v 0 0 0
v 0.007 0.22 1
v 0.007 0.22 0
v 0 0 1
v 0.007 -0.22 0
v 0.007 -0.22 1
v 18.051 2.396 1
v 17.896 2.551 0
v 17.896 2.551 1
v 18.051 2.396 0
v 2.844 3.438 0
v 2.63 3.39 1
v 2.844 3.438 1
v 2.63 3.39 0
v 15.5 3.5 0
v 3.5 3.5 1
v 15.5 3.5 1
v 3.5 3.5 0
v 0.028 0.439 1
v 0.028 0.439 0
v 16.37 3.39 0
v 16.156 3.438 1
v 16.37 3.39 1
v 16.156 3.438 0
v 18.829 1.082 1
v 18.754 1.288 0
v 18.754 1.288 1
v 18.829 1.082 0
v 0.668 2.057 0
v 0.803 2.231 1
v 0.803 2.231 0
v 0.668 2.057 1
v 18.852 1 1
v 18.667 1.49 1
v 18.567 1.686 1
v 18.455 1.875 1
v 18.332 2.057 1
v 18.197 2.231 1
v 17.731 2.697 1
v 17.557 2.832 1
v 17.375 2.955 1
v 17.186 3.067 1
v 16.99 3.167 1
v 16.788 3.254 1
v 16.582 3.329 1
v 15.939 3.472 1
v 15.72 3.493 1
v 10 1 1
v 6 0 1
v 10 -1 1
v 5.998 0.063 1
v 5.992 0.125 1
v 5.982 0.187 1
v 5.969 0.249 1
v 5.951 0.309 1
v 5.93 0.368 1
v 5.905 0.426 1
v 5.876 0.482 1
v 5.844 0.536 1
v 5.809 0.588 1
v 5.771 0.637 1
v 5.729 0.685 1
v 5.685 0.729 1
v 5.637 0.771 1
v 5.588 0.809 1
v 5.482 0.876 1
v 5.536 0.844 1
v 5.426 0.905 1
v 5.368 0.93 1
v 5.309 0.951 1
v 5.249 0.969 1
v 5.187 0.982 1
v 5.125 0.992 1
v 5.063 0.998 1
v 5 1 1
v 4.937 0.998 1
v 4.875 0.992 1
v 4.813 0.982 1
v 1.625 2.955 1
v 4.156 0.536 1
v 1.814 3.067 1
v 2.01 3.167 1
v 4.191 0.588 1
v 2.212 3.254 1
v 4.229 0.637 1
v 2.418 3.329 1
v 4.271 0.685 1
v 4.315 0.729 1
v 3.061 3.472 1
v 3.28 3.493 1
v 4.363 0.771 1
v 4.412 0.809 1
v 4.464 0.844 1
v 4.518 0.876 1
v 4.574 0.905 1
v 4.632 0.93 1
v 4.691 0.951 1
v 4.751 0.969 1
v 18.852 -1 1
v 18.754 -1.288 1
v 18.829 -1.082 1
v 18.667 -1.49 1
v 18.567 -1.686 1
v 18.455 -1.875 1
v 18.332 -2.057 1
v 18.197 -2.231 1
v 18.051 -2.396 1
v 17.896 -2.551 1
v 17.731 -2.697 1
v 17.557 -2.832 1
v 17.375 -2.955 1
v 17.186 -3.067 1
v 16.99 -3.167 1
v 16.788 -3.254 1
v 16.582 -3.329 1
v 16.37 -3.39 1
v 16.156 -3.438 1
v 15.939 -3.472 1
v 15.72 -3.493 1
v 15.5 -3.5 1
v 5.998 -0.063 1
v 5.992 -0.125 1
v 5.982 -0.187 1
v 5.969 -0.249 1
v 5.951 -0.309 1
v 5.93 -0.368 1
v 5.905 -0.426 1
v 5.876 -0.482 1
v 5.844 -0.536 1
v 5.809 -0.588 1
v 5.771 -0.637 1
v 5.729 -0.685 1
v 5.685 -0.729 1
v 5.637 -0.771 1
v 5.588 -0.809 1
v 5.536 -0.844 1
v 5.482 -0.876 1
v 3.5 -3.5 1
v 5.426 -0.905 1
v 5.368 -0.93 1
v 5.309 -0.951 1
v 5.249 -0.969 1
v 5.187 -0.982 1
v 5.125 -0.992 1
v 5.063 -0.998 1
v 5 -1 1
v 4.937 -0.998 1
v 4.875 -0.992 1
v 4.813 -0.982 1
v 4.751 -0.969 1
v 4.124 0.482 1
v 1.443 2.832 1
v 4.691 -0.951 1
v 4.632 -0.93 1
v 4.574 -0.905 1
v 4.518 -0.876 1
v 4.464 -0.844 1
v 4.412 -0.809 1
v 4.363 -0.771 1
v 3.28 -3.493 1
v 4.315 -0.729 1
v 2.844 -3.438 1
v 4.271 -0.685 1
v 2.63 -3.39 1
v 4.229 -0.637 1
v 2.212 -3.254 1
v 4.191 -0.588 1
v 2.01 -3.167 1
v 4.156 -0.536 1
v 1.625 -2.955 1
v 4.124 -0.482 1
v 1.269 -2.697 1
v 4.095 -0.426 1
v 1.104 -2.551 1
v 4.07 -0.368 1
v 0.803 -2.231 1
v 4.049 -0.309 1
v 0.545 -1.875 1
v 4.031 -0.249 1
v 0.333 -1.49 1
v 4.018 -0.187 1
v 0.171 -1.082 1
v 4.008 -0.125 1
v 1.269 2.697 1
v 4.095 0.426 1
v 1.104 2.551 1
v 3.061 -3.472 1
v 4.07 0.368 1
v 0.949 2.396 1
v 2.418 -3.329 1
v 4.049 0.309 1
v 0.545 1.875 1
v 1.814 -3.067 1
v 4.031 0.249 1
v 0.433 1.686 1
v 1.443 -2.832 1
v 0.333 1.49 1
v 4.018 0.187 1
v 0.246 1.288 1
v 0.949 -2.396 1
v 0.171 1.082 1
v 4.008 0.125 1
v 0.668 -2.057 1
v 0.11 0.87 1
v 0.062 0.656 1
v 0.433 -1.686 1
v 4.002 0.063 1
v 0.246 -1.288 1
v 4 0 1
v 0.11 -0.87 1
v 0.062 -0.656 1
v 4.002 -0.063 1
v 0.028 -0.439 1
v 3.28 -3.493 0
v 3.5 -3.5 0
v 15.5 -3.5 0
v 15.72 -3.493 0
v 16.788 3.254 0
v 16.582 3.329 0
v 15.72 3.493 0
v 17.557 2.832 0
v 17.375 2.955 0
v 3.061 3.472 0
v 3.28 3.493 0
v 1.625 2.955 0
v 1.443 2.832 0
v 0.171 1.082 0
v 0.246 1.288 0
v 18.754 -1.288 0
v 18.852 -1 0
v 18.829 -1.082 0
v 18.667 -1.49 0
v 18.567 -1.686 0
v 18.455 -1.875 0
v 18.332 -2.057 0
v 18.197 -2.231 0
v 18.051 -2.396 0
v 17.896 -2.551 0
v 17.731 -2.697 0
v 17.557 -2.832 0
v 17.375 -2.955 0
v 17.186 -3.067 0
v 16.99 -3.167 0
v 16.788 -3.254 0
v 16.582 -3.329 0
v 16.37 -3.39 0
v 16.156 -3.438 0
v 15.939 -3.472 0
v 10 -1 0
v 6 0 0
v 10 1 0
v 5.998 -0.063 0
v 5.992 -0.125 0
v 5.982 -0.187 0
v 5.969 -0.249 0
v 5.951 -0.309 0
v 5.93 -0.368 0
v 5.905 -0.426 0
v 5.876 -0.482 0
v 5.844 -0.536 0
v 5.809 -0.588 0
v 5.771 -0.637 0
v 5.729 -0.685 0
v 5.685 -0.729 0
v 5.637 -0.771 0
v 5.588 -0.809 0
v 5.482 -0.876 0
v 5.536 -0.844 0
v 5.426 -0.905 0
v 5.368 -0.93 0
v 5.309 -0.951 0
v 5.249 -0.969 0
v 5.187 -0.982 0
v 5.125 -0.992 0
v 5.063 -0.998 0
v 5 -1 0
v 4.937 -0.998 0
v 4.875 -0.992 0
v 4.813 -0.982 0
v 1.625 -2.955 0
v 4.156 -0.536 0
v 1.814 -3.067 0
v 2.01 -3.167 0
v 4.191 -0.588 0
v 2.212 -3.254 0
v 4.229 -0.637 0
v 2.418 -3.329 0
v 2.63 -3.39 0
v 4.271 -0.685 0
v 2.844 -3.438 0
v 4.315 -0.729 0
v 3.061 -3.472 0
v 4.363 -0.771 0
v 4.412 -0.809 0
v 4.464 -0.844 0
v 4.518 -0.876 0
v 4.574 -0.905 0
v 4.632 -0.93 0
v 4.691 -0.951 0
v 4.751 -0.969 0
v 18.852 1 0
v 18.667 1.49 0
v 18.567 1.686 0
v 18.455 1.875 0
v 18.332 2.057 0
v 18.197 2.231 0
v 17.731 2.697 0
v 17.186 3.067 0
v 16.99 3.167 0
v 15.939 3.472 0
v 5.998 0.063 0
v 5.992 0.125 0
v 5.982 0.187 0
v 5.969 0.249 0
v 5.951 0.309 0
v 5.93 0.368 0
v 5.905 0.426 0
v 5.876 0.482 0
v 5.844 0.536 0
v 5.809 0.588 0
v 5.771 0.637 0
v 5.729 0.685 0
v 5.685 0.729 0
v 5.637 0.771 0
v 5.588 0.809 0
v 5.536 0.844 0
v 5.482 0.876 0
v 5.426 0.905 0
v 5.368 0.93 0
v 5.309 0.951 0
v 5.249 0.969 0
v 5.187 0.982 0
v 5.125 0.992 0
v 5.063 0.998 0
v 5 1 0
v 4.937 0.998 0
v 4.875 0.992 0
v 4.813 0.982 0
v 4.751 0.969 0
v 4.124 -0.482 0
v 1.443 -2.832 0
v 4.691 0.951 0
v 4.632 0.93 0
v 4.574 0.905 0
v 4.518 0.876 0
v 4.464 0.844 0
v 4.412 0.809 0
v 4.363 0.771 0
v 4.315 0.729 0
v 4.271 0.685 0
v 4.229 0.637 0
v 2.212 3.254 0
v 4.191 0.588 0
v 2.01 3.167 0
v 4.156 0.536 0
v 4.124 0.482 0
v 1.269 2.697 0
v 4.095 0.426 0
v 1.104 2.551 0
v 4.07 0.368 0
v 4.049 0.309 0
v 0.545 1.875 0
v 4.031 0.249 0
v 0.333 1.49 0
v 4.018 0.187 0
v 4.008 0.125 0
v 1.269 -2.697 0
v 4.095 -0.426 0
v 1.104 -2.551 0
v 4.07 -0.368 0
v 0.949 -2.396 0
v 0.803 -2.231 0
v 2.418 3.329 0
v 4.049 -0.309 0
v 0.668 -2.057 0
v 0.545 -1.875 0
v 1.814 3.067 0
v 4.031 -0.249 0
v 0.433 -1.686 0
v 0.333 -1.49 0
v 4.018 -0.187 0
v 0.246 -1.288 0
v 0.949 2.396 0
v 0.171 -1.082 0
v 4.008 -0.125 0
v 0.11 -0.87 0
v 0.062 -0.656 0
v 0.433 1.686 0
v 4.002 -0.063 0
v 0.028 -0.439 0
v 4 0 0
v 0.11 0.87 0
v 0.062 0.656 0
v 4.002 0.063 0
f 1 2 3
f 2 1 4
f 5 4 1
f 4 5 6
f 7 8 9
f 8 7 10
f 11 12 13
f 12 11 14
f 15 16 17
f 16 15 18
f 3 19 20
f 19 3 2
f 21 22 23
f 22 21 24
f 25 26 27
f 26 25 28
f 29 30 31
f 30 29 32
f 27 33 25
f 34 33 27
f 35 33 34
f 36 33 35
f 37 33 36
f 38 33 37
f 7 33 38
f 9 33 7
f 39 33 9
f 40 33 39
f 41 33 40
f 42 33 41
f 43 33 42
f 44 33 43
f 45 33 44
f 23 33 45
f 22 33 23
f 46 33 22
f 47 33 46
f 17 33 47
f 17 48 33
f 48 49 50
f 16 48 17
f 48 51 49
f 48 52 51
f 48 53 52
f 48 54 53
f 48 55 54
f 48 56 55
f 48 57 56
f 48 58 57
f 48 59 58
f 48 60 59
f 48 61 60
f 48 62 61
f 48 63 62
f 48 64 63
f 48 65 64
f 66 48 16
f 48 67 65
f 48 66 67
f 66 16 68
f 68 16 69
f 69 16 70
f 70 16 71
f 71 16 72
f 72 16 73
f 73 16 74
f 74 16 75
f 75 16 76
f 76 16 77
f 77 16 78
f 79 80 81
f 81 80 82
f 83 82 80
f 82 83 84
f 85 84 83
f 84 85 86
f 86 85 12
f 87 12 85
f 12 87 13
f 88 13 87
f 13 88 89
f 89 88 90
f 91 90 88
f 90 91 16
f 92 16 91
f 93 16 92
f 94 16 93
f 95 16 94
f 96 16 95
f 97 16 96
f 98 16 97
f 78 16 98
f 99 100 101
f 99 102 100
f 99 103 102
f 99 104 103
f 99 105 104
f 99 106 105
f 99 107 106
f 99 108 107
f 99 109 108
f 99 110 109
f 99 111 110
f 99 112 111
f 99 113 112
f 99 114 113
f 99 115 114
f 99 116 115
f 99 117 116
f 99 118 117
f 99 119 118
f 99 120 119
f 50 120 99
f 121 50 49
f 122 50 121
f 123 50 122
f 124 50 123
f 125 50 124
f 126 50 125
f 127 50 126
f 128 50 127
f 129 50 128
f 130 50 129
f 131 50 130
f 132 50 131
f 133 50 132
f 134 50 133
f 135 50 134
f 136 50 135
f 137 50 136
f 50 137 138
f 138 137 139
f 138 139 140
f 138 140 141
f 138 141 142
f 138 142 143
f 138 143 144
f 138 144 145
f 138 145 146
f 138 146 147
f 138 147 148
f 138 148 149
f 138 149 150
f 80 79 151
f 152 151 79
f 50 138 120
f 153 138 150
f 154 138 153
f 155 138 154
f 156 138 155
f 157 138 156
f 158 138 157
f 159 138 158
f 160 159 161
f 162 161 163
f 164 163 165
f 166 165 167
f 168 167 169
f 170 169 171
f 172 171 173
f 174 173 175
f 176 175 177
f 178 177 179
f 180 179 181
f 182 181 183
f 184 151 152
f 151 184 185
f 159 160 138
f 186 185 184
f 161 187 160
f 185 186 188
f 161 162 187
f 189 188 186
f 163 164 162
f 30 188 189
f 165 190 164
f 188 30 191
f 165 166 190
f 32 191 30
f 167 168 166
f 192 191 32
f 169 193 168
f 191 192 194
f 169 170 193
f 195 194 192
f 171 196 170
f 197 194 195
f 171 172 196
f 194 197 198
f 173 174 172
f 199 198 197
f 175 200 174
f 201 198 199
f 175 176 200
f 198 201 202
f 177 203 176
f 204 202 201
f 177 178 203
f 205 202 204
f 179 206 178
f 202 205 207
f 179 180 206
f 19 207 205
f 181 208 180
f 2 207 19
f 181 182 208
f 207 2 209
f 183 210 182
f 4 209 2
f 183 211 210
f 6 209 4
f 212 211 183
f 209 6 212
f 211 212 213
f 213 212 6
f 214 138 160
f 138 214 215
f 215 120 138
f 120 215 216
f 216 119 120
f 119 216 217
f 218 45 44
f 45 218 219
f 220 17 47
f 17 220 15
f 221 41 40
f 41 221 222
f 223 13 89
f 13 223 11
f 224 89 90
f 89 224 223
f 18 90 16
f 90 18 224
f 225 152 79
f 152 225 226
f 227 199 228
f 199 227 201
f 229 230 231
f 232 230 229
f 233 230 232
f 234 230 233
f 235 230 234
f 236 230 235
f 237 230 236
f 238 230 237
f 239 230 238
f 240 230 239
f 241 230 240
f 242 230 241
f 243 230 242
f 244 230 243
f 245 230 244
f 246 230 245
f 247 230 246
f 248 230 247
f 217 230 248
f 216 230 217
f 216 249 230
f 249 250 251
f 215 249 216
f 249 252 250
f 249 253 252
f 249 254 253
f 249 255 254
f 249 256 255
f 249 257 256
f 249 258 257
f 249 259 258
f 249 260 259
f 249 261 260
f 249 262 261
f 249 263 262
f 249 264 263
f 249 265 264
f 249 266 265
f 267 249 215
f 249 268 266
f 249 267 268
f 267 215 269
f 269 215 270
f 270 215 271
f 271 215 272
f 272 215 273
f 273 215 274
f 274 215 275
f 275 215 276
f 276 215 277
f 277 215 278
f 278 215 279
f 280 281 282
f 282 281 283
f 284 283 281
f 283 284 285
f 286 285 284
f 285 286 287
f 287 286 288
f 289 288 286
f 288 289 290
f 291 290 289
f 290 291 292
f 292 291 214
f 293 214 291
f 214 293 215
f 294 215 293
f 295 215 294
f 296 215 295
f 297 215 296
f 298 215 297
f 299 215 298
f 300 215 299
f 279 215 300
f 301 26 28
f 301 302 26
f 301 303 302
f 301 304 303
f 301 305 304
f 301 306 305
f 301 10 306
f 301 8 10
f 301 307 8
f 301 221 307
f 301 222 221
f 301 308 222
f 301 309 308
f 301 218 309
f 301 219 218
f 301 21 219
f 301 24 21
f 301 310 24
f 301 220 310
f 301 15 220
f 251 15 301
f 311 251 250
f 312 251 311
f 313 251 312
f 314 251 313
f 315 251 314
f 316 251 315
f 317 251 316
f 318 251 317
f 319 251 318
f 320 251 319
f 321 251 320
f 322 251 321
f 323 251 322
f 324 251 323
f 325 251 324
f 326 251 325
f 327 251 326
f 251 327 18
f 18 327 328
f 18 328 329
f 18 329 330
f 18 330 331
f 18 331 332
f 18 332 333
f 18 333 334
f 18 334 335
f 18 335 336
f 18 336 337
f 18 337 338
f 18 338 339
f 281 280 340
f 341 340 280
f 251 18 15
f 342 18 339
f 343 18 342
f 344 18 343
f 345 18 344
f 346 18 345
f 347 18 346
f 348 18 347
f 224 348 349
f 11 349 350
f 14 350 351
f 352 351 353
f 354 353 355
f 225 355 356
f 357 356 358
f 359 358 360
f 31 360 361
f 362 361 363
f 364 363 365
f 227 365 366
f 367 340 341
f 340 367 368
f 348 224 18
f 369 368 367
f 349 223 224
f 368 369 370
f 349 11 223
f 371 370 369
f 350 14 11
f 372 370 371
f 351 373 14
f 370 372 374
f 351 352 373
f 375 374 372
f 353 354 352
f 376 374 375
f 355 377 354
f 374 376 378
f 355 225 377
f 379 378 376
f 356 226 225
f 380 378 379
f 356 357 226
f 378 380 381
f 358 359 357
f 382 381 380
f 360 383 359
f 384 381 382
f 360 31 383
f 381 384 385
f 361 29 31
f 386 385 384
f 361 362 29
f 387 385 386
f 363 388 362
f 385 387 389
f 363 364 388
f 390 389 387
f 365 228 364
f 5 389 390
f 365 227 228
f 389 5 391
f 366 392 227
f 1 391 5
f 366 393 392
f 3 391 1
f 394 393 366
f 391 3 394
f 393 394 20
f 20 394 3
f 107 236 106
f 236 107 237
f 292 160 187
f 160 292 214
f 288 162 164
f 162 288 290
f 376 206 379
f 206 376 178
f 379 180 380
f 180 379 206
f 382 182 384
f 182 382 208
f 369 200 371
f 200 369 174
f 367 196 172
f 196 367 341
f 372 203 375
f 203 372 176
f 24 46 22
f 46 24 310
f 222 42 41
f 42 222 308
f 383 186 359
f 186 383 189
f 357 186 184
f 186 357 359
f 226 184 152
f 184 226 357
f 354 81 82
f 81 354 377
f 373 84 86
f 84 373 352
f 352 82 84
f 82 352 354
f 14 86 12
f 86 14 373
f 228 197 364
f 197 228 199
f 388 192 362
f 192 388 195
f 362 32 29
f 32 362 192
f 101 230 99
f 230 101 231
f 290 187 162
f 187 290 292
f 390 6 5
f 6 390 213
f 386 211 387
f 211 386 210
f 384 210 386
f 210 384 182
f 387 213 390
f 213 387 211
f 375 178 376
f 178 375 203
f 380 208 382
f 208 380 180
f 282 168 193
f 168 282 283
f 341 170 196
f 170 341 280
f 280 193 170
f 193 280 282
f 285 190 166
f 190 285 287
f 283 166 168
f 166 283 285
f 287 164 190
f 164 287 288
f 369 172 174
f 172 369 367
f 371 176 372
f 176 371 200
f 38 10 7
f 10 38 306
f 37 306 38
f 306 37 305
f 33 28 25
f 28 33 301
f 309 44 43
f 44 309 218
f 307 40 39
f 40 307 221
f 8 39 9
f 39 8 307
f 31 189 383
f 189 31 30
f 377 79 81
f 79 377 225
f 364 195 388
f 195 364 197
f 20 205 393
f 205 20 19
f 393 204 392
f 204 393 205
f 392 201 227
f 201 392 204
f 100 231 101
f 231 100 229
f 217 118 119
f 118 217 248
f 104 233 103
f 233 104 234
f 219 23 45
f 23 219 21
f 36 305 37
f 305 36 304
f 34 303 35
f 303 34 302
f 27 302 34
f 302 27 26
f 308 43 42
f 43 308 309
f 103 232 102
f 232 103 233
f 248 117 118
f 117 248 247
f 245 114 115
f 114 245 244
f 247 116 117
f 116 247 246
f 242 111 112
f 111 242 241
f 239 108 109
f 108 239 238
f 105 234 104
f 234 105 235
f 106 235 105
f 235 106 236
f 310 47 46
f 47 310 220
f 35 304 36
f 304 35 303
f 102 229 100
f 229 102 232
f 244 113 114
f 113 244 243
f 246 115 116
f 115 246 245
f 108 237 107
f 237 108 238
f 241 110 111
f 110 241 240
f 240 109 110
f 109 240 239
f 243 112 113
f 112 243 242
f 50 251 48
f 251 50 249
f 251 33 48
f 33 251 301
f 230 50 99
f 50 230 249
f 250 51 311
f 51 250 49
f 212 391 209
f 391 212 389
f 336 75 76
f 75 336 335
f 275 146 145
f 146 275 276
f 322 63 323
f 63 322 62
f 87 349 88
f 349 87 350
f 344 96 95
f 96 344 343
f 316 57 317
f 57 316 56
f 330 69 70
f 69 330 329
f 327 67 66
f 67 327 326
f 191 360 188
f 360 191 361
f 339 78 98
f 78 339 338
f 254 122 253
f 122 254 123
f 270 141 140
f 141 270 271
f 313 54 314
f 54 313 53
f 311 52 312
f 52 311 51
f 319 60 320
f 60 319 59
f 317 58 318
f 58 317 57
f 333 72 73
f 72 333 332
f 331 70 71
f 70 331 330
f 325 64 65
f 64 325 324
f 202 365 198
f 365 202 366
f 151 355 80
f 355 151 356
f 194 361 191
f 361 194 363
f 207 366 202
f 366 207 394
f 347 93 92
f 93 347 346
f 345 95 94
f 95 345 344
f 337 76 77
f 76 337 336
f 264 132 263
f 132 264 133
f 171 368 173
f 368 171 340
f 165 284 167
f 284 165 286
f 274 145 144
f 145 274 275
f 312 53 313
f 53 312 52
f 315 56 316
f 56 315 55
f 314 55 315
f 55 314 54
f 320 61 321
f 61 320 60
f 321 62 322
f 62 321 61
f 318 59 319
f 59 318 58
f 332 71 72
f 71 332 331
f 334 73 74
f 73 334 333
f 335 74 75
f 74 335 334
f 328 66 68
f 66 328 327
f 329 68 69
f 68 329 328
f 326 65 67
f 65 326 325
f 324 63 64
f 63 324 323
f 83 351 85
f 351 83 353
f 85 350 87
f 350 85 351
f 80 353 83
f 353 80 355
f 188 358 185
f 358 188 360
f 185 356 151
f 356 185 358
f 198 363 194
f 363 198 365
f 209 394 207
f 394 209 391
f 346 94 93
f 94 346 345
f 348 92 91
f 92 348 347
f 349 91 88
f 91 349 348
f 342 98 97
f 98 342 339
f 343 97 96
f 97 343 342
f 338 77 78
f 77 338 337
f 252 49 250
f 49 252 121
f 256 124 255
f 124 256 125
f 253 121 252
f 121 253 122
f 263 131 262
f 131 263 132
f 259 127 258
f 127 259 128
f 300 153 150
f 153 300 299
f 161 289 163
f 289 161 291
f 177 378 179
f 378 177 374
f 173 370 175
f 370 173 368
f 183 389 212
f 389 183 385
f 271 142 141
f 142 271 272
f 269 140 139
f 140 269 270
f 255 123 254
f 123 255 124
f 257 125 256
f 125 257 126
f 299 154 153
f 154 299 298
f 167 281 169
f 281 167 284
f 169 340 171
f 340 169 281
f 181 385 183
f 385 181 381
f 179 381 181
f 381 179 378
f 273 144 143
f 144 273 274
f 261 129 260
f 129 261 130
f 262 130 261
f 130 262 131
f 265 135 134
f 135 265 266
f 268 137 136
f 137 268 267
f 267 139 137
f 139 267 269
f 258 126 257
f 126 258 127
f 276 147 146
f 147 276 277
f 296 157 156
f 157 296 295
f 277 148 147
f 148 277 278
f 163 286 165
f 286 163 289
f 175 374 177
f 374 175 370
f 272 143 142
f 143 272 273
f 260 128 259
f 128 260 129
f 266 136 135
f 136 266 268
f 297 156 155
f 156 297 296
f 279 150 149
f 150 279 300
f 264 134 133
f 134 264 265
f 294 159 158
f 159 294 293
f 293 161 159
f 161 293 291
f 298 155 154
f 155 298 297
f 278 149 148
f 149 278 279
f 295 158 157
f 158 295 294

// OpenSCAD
$fn=100;

difference()
{
hull()
{
color("red")translate([3.5,0,0])cylinder(1,3.5,3.5);
color("blue")translate([15.5,0,0])cylinder(1,3.5,3.5);
}
color("green")translate([10,-1,-1])cube([10,2,3]);

color("red")translate([5,0,-1])cylinder(3,1,1);
}
